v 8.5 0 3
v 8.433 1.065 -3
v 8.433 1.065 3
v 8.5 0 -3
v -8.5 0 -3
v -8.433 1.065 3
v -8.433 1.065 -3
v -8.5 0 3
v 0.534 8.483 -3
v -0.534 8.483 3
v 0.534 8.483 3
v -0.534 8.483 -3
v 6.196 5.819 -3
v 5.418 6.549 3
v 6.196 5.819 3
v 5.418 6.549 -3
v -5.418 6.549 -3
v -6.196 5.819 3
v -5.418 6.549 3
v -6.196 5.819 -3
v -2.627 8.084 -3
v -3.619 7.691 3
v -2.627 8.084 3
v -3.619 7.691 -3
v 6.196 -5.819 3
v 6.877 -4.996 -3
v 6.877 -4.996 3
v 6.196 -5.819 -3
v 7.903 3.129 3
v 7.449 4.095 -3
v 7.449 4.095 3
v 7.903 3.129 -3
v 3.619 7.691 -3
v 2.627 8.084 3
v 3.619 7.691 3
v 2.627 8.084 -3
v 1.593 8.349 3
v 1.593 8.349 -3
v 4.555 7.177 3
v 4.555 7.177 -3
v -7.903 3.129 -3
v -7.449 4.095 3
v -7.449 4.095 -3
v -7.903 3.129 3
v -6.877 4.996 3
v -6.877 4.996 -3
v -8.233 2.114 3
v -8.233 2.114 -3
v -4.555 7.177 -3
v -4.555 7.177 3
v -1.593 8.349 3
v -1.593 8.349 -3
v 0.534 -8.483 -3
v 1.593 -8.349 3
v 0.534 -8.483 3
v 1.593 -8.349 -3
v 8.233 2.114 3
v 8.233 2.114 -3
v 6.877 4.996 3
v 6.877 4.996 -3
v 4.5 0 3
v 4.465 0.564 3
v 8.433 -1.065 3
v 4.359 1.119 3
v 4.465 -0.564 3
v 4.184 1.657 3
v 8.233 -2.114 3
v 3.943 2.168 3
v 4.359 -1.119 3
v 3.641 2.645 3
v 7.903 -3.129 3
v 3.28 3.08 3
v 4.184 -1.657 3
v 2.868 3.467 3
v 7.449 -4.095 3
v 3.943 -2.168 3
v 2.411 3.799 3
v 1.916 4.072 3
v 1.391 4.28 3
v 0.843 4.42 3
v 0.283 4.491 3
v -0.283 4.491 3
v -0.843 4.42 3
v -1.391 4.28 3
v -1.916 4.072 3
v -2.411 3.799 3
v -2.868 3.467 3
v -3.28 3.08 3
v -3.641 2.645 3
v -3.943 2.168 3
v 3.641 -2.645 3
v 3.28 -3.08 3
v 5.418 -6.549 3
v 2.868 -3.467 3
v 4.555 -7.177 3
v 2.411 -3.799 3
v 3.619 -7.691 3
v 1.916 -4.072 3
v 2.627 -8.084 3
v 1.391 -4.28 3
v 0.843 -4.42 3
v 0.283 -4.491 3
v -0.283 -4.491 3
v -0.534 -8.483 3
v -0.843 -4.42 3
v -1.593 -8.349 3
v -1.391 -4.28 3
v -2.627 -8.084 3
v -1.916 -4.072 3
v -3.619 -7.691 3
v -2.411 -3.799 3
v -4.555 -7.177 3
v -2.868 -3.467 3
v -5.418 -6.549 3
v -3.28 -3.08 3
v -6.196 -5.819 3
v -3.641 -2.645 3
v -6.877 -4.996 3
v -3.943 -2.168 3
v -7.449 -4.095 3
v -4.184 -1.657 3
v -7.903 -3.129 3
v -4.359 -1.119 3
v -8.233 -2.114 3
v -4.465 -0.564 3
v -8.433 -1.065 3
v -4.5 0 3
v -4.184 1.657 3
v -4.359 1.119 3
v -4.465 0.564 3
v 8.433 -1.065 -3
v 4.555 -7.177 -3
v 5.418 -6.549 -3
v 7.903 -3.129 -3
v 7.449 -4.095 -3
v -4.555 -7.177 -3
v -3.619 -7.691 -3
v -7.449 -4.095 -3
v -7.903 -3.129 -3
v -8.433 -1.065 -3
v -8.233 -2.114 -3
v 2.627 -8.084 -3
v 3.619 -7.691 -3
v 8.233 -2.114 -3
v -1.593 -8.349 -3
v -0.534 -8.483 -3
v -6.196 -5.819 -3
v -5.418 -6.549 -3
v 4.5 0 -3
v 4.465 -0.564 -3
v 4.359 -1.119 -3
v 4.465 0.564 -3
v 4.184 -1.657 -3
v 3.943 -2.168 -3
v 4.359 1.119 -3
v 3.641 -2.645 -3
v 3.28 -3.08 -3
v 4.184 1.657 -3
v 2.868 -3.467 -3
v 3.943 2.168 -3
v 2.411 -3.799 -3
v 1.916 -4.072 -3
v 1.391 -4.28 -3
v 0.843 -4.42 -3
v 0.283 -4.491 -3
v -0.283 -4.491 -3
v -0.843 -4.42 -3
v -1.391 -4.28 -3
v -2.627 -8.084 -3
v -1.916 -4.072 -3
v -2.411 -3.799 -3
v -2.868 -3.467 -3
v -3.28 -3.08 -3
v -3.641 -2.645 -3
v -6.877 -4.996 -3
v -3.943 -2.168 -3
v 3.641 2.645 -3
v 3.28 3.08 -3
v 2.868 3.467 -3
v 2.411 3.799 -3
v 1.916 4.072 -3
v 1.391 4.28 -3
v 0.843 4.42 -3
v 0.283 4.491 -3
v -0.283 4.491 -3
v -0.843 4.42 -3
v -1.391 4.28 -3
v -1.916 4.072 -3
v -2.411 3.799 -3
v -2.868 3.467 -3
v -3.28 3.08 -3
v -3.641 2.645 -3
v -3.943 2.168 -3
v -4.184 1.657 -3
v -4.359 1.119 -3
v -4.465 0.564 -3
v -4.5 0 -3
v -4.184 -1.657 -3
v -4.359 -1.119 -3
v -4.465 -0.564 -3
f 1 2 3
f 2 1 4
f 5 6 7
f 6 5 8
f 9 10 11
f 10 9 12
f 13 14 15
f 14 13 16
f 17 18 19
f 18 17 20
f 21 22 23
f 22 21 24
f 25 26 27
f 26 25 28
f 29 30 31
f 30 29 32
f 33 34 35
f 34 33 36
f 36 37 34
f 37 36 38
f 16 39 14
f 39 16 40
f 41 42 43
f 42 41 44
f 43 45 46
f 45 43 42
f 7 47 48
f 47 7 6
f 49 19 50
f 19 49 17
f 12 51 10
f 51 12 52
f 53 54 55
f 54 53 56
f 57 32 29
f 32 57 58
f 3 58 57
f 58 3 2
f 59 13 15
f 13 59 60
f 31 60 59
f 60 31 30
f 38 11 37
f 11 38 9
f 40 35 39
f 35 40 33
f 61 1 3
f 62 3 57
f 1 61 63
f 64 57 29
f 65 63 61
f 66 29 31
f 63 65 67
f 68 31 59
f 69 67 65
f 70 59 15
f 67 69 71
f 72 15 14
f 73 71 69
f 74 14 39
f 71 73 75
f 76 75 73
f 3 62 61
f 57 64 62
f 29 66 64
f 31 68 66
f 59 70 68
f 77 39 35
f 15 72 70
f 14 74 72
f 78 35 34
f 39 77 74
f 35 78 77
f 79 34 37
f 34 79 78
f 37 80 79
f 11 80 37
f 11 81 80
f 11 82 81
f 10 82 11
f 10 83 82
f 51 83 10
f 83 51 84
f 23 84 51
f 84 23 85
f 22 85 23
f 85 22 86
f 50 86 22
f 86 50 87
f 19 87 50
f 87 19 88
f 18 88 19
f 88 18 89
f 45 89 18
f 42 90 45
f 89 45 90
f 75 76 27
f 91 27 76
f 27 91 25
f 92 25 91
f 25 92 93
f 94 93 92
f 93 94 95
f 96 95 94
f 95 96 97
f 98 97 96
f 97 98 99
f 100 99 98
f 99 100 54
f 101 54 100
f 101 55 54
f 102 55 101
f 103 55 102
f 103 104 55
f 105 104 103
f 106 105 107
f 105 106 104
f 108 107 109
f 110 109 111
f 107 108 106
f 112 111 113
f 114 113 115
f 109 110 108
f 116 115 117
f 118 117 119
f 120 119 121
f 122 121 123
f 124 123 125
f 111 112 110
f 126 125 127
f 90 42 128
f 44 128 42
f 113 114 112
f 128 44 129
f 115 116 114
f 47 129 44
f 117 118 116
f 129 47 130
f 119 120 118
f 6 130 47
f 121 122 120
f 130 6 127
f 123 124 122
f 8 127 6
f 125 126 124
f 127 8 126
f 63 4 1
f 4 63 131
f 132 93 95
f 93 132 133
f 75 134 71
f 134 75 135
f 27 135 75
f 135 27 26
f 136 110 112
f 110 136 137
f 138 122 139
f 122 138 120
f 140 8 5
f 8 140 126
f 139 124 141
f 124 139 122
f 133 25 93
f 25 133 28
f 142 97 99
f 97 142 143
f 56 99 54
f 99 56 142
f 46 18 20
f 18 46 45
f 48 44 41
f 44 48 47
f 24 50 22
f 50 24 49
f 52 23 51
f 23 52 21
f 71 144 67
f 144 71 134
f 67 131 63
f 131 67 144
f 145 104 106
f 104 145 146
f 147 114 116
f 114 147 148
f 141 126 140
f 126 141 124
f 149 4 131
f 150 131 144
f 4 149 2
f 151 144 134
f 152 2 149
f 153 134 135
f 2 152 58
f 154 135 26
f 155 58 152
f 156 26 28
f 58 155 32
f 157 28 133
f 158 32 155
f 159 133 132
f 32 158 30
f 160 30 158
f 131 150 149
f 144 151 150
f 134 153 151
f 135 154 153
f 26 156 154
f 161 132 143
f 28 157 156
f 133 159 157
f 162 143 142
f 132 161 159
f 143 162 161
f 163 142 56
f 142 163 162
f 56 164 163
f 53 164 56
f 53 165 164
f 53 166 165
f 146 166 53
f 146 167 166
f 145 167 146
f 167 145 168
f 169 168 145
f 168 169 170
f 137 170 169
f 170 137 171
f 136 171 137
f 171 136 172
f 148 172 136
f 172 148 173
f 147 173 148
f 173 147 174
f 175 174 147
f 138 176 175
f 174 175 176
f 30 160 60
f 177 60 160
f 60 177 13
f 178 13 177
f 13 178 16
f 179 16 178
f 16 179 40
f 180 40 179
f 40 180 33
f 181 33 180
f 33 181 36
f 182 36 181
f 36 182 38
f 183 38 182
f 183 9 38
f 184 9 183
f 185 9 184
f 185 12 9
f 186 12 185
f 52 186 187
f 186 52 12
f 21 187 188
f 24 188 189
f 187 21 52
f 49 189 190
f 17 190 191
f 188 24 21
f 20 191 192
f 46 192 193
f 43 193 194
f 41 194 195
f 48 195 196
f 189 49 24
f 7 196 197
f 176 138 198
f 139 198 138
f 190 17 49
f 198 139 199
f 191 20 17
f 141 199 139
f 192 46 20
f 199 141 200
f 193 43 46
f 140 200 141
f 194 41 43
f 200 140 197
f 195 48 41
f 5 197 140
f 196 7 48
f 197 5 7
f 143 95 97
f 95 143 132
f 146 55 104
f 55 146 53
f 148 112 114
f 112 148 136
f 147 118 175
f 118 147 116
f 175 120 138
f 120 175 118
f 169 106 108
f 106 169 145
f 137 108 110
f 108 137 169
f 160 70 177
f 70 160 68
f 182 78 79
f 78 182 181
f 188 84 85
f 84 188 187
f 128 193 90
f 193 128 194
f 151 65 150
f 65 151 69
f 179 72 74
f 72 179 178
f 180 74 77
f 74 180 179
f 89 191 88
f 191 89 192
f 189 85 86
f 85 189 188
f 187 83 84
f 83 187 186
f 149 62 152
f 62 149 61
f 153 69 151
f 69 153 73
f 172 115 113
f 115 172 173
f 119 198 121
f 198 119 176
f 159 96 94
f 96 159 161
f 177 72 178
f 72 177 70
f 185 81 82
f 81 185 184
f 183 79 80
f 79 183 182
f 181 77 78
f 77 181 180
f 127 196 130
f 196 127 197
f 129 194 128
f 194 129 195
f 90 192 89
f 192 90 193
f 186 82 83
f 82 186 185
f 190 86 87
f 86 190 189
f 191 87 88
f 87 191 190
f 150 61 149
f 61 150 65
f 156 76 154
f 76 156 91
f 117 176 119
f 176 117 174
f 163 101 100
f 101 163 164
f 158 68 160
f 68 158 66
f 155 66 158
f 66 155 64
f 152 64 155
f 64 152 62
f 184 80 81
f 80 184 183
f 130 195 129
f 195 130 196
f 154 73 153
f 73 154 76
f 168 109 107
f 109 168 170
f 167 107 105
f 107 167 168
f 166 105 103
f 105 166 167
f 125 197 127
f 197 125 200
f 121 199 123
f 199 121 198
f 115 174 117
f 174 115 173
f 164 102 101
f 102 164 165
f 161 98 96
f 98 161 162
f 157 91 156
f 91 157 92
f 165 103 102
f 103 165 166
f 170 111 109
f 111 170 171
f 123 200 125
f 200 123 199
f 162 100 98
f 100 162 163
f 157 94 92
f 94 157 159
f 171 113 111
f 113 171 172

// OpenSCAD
$fn = 50;


difference() {
	union() {
		translate(v = [0, 0, -3.0000000000]) {
			cylinder(h = 6, r = 8.5000000000);
		}
	}
	union() {
		translate(v = [0, 0, -100.0000000000]) {
			cylinder(h = 200, r = 4.5000000000);
		}
	}
}
